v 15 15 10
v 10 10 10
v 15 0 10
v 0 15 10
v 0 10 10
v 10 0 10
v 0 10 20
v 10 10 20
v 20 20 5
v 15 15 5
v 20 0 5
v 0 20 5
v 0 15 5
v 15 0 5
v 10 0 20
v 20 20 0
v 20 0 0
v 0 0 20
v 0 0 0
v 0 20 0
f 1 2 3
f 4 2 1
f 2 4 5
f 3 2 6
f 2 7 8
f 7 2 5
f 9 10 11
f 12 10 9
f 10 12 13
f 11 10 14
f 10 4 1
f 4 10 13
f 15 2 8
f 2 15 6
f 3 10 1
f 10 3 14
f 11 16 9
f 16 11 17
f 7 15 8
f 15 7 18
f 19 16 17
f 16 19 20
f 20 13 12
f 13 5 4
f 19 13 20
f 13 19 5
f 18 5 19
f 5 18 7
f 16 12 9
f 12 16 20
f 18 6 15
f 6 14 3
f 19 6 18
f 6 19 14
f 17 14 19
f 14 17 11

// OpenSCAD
long_edge_length = 20;

short_edge_length = long_edge_length / 2;
mini_edge_length = long_edge_length / 4;
pad = 0.001;

difference()
{
  cube(size=long_edge_length);

  color("#0000FF")
  {
  translate([(-1 * pad),
             short_edge_length,
             short_edge_length])
  {
    cube([long_edge_length + (2 * pad),
          short_edge_length + pad,
          short_edge_length + pad]);
  }

  translate([(-1 * pad),
             long_edge_length - mini_edge_length,
             mini_edge_length])
  {
  cube([long_edge_length + (2 * pad),
        mini_edge_length + pad,
        mini_edge_length + pad]);
  }
  }

  color("#FF6600")
  {
    rotate([0,
            0,
            -90])
  {
    translate([(-1 * pad) - long_edge_length,
               short_edge_length,
               short_edge_length])
    {
      cube([long_edge_length + (2 * pad),
            short_edge_length + pad,
            short_edge_length + pad]);
    }

    translate([(-1 * pad) - long_edge_length,
               long_edge_length - mini_edge_length,
               mini_edge_length])
    {
      cube([long_edge_length + (2 * pad),
            mini_edge_length + pad,
            mini_edge_length + pad]);
    }
  }
  }
}
